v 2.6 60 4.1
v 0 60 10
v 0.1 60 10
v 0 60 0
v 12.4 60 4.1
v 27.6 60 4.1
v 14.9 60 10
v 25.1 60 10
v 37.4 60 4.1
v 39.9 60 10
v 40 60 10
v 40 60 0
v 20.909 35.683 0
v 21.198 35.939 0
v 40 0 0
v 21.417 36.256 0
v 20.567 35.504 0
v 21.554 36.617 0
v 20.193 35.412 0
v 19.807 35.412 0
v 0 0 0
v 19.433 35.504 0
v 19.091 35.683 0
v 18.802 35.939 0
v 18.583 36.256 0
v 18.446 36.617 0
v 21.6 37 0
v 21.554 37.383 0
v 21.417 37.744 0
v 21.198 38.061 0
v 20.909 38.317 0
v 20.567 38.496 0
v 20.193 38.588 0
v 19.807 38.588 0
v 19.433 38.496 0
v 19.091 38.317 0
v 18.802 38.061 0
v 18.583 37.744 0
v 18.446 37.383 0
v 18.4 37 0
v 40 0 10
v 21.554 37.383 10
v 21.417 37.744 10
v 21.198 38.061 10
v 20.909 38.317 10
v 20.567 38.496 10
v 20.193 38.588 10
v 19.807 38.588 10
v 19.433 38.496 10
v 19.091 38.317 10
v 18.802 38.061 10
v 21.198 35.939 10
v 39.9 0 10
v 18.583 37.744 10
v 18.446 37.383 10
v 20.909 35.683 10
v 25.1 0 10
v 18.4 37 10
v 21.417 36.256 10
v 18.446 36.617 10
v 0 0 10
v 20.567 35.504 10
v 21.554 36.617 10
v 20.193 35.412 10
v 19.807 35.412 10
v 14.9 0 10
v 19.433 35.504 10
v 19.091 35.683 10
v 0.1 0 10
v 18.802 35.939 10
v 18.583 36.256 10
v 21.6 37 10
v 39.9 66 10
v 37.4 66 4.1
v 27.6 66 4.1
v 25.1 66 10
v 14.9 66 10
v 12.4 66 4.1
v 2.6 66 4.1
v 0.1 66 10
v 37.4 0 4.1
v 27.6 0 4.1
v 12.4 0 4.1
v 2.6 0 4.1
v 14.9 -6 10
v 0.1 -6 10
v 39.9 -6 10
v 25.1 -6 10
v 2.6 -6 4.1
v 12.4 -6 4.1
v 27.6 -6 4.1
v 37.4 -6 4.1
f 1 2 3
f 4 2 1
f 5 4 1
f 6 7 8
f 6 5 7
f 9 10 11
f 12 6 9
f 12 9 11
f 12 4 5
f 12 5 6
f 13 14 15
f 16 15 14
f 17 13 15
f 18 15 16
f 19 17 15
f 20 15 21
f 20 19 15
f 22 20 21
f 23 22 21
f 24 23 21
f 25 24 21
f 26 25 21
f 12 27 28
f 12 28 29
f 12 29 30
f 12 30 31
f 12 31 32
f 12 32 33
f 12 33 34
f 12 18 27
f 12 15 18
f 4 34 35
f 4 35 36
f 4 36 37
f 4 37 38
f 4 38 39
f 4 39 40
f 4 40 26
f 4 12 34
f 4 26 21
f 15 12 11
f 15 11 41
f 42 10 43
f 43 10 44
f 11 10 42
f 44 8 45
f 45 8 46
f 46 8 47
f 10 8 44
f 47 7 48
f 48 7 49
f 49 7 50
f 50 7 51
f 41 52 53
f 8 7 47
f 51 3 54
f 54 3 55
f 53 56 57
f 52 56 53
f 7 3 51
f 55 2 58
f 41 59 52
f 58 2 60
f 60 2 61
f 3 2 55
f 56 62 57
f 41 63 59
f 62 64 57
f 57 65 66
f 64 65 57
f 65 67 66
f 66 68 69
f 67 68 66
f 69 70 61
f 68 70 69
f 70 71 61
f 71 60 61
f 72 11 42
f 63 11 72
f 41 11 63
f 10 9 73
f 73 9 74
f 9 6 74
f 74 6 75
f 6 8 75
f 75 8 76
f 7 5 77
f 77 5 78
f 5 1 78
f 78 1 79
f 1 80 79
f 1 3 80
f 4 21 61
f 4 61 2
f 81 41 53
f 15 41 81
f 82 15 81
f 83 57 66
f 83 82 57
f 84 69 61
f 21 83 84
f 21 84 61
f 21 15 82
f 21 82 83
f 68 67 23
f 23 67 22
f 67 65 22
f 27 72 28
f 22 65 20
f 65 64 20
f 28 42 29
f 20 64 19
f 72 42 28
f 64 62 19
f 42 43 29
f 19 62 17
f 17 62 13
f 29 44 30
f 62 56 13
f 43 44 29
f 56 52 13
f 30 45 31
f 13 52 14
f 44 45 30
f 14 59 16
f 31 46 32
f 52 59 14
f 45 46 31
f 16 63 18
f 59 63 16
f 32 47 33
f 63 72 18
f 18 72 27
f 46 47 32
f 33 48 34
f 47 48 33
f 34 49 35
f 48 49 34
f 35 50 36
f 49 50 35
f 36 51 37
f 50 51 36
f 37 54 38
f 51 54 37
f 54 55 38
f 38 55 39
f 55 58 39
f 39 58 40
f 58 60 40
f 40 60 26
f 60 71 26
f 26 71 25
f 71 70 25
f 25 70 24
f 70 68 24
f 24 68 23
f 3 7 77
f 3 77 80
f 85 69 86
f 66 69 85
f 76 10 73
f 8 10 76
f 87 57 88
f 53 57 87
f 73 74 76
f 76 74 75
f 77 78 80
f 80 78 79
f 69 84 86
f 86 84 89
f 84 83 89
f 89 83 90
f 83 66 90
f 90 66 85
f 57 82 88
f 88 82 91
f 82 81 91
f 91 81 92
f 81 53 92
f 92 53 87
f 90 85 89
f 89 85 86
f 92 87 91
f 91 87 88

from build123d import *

# Parameters (mm, degrees)
SKETCH_W     = 40
SKETCH_H     = 60
PAD_DEPTH    = 10
PAD001_DEPTH = 6
PAD002_DEPTH = 6
SKETCH003_R  = 1.6
POCKET_DEPTH = 10


with BuildPart() as part:
    # Sketch → Pad (new body)
    with BuildSketch(Plane.XY):
        with Locations((20, 30)):
            Rectangle(SKETCH_W, SKETCH_H)
    extrude(amount=PAD_DEPTH)

    # Sketch001 (on Face3 of Pad) → Pad001 (join)
    with BuildSketch(Plane.XZ):
        Polygon((0.1, 10), (14.9, 10), (12.4, 4.1), (2.6, 4.1), align=None)
        Polygon((25.1, 10), (39.9, 10), (37.4, 4.1), (27.6, 4.1), align=None)
    extrude(amount=PAD001_DEPTH)

    # Sketch002 (on Face1 of Pad001) → Pad002 (join)
    with BuildSketch(Plane(origin=(0, 60, 0), x_dir=(-1, 0, 0), z_dir=(0, 1, 0))):
        Polygon((-39.9, 10), (-25.1, 10), (-27.6, 4.1), (-37.4, 4.1), align=None)
        Polygon((-14.9, 10), (-0.1, 10), (-2.6, 4.1), (-12.4, 4.1), align=None)
    extrude(amount=PAD002_DEPTH)

    # Sketch003 (on Face4 of Pad002) → Pocket (cut)
    with BuildSketch(Plane.XY.offset(10)):
        with Locations((20, 37)):
            Circle(SKETCH003_R)
    extrude(amount=-POCKET_DEPTH, mode=Mode.SUBTRACT)


solid = part.part
